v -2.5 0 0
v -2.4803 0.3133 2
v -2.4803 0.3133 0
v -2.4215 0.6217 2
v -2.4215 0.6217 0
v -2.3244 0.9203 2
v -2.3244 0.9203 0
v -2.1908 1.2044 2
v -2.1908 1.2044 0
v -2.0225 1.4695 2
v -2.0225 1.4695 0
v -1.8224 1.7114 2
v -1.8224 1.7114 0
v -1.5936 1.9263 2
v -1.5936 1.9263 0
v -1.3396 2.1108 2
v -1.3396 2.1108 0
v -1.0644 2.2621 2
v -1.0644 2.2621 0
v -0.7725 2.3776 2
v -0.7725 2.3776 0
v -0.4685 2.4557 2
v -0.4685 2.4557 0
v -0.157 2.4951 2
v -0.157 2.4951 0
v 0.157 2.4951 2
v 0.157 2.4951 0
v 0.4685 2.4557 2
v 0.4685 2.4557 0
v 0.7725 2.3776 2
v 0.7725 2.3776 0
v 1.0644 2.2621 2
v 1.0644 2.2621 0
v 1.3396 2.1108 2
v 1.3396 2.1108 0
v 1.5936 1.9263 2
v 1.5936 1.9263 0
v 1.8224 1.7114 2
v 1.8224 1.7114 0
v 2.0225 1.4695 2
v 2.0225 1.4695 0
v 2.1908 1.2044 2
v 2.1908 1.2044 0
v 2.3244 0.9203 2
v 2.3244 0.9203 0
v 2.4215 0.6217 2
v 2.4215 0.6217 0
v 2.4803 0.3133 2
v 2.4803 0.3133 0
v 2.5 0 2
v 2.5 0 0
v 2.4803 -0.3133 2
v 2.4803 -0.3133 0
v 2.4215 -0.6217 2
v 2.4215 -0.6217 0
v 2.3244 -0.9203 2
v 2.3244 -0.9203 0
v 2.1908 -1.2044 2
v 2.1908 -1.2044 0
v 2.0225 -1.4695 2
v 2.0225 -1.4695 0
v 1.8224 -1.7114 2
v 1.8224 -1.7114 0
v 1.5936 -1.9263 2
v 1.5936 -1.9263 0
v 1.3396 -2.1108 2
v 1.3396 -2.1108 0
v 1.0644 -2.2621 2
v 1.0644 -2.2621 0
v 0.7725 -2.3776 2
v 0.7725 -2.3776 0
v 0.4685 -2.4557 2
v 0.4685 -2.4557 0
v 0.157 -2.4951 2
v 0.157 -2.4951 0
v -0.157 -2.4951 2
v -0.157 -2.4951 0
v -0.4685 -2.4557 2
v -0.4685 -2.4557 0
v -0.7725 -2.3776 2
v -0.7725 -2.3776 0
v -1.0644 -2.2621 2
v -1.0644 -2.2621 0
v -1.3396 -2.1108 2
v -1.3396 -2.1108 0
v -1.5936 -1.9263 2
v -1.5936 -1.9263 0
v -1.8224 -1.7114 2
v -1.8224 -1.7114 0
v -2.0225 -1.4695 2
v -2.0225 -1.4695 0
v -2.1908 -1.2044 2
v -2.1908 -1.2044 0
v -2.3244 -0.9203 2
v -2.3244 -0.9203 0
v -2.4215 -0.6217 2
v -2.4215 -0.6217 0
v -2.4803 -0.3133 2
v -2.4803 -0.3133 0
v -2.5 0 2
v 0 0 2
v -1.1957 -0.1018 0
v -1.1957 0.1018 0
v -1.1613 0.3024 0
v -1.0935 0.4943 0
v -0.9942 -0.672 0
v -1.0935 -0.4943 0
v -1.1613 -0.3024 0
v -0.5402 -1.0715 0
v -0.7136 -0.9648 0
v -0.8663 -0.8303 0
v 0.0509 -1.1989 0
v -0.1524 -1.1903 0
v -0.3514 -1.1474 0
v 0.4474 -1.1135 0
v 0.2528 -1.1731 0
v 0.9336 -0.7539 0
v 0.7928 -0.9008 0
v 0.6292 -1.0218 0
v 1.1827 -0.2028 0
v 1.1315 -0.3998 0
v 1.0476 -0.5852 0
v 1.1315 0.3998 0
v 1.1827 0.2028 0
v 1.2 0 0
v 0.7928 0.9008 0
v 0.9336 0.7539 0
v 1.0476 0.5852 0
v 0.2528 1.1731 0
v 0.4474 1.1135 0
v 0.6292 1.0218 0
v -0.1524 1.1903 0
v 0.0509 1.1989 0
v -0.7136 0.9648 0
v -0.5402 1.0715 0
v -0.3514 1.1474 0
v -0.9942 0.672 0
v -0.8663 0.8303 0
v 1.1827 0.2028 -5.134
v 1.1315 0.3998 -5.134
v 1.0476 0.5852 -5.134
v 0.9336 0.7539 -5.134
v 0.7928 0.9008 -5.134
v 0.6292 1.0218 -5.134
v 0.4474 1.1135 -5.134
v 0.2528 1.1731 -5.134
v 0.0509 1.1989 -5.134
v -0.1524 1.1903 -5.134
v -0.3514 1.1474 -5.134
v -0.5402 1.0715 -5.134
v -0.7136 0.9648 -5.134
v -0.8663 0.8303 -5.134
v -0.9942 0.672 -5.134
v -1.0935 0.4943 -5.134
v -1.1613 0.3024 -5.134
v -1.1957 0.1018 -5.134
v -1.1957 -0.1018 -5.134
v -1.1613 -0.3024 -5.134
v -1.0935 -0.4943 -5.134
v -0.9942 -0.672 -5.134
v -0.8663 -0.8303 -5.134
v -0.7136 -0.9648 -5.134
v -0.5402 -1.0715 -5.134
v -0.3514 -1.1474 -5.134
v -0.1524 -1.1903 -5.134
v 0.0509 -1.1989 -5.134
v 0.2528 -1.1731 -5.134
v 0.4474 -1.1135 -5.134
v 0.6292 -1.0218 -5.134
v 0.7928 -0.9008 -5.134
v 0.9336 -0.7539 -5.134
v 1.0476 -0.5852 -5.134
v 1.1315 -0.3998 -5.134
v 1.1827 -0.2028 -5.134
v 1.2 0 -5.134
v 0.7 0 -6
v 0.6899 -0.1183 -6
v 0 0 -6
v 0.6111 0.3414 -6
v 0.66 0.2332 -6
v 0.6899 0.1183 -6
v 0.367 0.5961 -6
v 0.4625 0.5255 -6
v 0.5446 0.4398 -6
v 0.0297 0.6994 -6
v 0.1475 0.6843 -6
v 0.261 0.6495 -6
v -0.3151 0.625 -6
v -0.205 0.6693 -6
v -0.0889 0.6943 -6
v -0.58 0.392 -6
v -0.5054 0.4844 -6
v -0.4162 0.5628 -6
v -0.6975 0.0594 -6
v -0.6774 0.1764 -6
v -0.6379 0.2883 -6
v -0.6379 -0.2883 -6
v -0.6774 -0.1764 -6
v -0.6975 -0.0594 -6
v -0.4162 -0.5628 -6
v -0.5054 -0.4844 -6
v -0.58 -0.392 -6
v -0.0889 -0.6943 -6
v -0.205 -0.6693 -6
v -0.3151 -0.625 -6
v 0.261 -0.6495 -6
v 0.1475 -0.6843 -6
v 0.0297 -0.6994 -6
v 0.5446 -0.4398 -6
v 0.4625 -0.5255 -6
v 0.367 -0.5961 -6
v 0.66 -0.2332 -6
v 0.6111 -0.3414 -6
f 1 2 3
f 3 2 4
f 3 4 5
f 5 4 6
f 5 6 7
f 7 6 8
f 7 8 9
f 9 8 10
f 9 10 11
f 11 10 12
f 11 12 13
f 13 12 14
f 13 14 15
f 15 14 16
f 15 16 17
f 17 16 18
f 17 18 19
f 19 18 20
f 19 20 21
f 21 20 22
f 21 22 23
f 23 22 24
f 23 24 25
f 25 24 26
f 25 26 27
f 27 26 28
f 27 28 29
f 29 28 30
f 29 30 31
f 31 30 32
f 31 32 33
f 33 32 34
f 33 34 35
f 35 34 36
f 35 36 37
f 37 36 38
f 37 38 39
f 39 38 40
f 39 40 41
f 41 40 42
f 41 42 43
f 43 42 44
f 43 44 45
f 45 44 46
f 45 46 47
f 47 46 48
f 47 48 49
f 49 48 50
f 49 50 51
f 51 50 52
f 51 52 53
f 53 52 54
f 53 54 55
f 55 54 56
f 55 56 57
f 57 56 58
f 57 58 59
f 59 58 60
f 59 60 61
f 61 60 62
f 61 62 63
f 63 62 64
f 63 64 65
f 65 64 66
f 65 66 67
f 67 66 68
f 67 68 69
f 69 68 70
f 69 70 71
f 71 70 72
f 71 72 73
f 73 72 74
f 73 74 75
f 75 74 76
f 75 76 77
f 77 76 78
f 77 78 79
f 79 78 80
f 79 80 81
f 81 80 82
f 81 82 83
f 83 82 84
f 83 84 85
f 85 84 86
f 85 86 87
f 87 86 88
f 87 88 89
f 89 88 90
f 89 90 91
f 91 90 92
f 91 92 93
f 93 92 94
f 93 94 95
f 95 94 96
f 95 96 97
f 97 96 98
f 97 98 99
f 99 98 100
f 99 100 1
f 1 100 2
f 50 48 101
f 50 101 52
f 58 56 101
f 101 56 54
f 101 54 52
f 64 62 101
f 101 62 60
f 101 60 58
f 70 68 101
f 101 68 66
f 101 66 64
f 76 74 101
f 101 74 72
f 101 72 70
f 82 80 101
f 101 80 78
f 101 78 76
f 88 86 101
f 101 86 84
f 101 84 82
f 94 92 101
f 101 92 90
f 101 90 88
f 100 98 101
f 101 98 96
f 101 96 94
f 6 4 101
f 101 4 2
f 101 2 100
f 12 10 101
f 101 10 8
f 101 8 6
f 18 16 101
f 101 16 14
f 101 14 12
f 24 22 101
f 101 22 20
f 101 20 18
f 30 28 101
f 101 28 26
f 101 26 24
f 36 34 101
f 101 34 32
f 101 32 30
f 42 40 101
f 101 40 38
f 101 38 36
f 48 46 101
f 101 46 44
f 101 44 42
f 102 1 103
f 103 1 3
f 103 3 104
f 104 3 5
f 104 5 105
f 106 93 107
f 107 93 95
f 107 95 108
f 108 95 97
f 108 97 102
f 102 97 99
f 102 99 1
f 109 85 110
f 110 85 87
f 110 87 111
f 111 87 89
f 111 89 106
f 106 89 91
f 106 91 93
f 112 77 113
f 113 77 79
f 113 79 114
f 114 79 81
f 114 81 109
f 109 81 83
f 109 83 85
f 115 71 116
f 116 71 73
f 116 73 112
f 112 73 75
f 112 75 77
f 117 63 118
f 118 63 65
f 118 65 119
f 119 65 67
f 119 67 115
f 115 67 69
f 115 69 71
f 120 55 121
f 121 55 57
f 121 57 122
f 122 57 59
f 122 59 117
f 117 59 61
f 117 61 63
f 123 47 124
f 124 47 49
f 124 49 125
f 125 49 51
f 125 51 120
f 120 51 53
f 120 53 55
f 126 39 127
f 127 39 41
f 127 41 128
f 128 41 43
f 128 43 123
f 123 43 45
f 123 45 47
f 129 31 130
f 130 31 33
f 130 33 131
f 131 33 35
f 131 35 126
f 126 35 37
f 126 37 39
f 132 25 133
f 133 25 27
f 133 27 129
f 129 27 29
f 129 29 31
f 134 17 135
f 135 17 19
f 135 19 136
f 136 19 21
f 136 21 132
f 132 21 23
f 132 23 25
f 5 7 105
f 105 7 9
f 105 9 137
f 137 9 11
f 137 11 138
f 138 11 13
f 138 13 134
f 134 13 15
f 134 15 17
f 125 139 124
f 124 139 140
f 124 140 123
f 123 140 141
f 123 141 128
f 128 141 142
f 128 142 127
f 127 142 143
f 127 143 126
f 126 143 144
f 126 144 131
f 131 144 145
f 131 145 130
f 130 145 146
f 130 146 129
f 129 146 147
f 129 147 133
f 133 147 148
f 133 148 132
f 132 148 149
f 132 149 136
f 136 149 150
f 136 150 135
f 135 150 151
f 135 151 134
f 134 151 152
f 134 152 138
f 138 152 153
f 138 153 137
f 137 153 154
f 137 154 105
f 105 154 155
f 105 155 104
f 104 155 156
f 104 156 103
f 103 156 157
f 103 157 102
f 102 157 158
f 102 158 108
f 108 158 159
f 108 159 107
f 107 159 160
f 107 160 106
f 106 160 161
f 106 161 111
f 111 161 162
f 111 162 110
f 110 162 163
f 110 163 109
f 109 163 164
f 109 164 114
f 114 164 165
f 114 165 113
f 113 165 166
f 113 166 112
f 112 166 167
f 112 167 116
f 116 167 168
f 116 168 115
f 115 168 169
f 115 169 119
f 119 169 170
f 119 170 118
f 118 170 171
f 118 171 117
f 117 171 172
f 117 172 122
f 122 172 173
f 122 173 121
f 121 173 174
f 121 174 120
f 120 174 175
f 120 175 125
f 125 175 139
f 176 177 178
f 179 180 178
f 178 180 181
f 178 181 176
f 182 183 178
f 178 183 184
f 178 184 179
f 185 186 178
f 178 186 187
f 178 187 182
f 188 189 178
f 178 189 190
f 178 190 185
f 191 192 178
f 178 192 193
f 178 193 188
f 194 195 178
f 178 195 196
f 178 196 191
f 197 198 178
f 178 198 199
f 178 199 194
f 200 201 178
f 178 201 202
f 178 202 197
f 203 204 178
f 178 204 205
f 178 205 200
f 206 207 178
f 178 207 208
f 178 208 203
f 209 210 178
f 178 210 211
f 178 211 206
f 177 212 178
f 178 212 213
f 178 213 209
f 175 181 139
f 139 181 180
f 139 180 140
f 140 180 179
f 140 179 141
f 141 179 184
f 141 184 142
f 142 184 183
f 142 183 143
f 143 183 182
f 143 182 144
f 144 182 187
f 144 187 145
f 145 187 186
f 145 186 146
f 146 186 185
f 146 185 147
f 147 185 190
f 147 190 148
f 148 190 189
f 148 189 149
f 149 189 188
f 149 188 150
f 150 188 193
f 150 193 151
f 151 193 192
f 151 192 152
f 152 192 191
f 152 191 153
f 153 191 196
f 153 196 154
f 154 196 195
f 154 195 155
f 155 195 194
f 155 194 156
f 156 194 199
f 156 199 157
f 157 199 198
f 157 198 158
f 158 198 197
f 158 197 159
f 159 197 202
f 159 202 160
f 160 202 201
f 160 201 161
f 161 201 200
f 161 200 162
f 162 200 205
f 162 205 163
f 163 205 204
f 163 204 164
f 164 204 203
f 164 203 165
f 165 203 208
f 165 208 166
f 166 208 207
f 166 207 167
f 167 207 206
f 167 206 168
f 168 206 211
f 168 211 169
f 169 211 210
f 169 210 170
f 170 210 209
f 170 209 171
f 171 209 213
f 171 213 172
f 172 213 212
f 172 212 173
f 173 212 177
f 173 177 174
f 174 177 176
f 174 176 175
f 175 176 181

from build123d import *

# Parameters (mm, degrees)
CROQUIS1_R              = 2.5
SALIENTE_EXTRUIR1_DEPTH = 2
CROQUIS2_R              = 1.2
SALIENTE_EXTRUIR2_DEPTH = 6
CHAFL_N1_SIZE           = 0.5
CHAFL_N1_SIZE2          = 0.866025404


with BuildPart() as part:
    # Croquis1 → Saliente-Extruir1 (new body)
    with BuildSketch(Plane.XY):
        Circle(CROQUIS1_R)
    extrude(amount=SALIENTE_EXTRUIR1_DEPTH)

    # Croquis2 → Saliente-Extruir2 (add)
    with BuildSketch(Plane.XY):
        Circle(CROQUIS2_R)
    extrude(amount=-SALIENTE_EXTRUIR2_DEPTH)

    # Chaflán1
    chafl_n1_edges = [part.edges().sort_by_distance(p)[0] for p in [
        (-1.2, 0, -6),
    ]]
    chafl_n1_side = [part.faces().sort_by_distance(p)[0] for p in [
        (0, 0, -6),
    ]]
    chamfer(chafl_n1_edges, length=CHAFL_N1_SIZE, length2=CHAFL_N1_SIZE2, reference=chafl_n1_side[0])


solid = part.part
